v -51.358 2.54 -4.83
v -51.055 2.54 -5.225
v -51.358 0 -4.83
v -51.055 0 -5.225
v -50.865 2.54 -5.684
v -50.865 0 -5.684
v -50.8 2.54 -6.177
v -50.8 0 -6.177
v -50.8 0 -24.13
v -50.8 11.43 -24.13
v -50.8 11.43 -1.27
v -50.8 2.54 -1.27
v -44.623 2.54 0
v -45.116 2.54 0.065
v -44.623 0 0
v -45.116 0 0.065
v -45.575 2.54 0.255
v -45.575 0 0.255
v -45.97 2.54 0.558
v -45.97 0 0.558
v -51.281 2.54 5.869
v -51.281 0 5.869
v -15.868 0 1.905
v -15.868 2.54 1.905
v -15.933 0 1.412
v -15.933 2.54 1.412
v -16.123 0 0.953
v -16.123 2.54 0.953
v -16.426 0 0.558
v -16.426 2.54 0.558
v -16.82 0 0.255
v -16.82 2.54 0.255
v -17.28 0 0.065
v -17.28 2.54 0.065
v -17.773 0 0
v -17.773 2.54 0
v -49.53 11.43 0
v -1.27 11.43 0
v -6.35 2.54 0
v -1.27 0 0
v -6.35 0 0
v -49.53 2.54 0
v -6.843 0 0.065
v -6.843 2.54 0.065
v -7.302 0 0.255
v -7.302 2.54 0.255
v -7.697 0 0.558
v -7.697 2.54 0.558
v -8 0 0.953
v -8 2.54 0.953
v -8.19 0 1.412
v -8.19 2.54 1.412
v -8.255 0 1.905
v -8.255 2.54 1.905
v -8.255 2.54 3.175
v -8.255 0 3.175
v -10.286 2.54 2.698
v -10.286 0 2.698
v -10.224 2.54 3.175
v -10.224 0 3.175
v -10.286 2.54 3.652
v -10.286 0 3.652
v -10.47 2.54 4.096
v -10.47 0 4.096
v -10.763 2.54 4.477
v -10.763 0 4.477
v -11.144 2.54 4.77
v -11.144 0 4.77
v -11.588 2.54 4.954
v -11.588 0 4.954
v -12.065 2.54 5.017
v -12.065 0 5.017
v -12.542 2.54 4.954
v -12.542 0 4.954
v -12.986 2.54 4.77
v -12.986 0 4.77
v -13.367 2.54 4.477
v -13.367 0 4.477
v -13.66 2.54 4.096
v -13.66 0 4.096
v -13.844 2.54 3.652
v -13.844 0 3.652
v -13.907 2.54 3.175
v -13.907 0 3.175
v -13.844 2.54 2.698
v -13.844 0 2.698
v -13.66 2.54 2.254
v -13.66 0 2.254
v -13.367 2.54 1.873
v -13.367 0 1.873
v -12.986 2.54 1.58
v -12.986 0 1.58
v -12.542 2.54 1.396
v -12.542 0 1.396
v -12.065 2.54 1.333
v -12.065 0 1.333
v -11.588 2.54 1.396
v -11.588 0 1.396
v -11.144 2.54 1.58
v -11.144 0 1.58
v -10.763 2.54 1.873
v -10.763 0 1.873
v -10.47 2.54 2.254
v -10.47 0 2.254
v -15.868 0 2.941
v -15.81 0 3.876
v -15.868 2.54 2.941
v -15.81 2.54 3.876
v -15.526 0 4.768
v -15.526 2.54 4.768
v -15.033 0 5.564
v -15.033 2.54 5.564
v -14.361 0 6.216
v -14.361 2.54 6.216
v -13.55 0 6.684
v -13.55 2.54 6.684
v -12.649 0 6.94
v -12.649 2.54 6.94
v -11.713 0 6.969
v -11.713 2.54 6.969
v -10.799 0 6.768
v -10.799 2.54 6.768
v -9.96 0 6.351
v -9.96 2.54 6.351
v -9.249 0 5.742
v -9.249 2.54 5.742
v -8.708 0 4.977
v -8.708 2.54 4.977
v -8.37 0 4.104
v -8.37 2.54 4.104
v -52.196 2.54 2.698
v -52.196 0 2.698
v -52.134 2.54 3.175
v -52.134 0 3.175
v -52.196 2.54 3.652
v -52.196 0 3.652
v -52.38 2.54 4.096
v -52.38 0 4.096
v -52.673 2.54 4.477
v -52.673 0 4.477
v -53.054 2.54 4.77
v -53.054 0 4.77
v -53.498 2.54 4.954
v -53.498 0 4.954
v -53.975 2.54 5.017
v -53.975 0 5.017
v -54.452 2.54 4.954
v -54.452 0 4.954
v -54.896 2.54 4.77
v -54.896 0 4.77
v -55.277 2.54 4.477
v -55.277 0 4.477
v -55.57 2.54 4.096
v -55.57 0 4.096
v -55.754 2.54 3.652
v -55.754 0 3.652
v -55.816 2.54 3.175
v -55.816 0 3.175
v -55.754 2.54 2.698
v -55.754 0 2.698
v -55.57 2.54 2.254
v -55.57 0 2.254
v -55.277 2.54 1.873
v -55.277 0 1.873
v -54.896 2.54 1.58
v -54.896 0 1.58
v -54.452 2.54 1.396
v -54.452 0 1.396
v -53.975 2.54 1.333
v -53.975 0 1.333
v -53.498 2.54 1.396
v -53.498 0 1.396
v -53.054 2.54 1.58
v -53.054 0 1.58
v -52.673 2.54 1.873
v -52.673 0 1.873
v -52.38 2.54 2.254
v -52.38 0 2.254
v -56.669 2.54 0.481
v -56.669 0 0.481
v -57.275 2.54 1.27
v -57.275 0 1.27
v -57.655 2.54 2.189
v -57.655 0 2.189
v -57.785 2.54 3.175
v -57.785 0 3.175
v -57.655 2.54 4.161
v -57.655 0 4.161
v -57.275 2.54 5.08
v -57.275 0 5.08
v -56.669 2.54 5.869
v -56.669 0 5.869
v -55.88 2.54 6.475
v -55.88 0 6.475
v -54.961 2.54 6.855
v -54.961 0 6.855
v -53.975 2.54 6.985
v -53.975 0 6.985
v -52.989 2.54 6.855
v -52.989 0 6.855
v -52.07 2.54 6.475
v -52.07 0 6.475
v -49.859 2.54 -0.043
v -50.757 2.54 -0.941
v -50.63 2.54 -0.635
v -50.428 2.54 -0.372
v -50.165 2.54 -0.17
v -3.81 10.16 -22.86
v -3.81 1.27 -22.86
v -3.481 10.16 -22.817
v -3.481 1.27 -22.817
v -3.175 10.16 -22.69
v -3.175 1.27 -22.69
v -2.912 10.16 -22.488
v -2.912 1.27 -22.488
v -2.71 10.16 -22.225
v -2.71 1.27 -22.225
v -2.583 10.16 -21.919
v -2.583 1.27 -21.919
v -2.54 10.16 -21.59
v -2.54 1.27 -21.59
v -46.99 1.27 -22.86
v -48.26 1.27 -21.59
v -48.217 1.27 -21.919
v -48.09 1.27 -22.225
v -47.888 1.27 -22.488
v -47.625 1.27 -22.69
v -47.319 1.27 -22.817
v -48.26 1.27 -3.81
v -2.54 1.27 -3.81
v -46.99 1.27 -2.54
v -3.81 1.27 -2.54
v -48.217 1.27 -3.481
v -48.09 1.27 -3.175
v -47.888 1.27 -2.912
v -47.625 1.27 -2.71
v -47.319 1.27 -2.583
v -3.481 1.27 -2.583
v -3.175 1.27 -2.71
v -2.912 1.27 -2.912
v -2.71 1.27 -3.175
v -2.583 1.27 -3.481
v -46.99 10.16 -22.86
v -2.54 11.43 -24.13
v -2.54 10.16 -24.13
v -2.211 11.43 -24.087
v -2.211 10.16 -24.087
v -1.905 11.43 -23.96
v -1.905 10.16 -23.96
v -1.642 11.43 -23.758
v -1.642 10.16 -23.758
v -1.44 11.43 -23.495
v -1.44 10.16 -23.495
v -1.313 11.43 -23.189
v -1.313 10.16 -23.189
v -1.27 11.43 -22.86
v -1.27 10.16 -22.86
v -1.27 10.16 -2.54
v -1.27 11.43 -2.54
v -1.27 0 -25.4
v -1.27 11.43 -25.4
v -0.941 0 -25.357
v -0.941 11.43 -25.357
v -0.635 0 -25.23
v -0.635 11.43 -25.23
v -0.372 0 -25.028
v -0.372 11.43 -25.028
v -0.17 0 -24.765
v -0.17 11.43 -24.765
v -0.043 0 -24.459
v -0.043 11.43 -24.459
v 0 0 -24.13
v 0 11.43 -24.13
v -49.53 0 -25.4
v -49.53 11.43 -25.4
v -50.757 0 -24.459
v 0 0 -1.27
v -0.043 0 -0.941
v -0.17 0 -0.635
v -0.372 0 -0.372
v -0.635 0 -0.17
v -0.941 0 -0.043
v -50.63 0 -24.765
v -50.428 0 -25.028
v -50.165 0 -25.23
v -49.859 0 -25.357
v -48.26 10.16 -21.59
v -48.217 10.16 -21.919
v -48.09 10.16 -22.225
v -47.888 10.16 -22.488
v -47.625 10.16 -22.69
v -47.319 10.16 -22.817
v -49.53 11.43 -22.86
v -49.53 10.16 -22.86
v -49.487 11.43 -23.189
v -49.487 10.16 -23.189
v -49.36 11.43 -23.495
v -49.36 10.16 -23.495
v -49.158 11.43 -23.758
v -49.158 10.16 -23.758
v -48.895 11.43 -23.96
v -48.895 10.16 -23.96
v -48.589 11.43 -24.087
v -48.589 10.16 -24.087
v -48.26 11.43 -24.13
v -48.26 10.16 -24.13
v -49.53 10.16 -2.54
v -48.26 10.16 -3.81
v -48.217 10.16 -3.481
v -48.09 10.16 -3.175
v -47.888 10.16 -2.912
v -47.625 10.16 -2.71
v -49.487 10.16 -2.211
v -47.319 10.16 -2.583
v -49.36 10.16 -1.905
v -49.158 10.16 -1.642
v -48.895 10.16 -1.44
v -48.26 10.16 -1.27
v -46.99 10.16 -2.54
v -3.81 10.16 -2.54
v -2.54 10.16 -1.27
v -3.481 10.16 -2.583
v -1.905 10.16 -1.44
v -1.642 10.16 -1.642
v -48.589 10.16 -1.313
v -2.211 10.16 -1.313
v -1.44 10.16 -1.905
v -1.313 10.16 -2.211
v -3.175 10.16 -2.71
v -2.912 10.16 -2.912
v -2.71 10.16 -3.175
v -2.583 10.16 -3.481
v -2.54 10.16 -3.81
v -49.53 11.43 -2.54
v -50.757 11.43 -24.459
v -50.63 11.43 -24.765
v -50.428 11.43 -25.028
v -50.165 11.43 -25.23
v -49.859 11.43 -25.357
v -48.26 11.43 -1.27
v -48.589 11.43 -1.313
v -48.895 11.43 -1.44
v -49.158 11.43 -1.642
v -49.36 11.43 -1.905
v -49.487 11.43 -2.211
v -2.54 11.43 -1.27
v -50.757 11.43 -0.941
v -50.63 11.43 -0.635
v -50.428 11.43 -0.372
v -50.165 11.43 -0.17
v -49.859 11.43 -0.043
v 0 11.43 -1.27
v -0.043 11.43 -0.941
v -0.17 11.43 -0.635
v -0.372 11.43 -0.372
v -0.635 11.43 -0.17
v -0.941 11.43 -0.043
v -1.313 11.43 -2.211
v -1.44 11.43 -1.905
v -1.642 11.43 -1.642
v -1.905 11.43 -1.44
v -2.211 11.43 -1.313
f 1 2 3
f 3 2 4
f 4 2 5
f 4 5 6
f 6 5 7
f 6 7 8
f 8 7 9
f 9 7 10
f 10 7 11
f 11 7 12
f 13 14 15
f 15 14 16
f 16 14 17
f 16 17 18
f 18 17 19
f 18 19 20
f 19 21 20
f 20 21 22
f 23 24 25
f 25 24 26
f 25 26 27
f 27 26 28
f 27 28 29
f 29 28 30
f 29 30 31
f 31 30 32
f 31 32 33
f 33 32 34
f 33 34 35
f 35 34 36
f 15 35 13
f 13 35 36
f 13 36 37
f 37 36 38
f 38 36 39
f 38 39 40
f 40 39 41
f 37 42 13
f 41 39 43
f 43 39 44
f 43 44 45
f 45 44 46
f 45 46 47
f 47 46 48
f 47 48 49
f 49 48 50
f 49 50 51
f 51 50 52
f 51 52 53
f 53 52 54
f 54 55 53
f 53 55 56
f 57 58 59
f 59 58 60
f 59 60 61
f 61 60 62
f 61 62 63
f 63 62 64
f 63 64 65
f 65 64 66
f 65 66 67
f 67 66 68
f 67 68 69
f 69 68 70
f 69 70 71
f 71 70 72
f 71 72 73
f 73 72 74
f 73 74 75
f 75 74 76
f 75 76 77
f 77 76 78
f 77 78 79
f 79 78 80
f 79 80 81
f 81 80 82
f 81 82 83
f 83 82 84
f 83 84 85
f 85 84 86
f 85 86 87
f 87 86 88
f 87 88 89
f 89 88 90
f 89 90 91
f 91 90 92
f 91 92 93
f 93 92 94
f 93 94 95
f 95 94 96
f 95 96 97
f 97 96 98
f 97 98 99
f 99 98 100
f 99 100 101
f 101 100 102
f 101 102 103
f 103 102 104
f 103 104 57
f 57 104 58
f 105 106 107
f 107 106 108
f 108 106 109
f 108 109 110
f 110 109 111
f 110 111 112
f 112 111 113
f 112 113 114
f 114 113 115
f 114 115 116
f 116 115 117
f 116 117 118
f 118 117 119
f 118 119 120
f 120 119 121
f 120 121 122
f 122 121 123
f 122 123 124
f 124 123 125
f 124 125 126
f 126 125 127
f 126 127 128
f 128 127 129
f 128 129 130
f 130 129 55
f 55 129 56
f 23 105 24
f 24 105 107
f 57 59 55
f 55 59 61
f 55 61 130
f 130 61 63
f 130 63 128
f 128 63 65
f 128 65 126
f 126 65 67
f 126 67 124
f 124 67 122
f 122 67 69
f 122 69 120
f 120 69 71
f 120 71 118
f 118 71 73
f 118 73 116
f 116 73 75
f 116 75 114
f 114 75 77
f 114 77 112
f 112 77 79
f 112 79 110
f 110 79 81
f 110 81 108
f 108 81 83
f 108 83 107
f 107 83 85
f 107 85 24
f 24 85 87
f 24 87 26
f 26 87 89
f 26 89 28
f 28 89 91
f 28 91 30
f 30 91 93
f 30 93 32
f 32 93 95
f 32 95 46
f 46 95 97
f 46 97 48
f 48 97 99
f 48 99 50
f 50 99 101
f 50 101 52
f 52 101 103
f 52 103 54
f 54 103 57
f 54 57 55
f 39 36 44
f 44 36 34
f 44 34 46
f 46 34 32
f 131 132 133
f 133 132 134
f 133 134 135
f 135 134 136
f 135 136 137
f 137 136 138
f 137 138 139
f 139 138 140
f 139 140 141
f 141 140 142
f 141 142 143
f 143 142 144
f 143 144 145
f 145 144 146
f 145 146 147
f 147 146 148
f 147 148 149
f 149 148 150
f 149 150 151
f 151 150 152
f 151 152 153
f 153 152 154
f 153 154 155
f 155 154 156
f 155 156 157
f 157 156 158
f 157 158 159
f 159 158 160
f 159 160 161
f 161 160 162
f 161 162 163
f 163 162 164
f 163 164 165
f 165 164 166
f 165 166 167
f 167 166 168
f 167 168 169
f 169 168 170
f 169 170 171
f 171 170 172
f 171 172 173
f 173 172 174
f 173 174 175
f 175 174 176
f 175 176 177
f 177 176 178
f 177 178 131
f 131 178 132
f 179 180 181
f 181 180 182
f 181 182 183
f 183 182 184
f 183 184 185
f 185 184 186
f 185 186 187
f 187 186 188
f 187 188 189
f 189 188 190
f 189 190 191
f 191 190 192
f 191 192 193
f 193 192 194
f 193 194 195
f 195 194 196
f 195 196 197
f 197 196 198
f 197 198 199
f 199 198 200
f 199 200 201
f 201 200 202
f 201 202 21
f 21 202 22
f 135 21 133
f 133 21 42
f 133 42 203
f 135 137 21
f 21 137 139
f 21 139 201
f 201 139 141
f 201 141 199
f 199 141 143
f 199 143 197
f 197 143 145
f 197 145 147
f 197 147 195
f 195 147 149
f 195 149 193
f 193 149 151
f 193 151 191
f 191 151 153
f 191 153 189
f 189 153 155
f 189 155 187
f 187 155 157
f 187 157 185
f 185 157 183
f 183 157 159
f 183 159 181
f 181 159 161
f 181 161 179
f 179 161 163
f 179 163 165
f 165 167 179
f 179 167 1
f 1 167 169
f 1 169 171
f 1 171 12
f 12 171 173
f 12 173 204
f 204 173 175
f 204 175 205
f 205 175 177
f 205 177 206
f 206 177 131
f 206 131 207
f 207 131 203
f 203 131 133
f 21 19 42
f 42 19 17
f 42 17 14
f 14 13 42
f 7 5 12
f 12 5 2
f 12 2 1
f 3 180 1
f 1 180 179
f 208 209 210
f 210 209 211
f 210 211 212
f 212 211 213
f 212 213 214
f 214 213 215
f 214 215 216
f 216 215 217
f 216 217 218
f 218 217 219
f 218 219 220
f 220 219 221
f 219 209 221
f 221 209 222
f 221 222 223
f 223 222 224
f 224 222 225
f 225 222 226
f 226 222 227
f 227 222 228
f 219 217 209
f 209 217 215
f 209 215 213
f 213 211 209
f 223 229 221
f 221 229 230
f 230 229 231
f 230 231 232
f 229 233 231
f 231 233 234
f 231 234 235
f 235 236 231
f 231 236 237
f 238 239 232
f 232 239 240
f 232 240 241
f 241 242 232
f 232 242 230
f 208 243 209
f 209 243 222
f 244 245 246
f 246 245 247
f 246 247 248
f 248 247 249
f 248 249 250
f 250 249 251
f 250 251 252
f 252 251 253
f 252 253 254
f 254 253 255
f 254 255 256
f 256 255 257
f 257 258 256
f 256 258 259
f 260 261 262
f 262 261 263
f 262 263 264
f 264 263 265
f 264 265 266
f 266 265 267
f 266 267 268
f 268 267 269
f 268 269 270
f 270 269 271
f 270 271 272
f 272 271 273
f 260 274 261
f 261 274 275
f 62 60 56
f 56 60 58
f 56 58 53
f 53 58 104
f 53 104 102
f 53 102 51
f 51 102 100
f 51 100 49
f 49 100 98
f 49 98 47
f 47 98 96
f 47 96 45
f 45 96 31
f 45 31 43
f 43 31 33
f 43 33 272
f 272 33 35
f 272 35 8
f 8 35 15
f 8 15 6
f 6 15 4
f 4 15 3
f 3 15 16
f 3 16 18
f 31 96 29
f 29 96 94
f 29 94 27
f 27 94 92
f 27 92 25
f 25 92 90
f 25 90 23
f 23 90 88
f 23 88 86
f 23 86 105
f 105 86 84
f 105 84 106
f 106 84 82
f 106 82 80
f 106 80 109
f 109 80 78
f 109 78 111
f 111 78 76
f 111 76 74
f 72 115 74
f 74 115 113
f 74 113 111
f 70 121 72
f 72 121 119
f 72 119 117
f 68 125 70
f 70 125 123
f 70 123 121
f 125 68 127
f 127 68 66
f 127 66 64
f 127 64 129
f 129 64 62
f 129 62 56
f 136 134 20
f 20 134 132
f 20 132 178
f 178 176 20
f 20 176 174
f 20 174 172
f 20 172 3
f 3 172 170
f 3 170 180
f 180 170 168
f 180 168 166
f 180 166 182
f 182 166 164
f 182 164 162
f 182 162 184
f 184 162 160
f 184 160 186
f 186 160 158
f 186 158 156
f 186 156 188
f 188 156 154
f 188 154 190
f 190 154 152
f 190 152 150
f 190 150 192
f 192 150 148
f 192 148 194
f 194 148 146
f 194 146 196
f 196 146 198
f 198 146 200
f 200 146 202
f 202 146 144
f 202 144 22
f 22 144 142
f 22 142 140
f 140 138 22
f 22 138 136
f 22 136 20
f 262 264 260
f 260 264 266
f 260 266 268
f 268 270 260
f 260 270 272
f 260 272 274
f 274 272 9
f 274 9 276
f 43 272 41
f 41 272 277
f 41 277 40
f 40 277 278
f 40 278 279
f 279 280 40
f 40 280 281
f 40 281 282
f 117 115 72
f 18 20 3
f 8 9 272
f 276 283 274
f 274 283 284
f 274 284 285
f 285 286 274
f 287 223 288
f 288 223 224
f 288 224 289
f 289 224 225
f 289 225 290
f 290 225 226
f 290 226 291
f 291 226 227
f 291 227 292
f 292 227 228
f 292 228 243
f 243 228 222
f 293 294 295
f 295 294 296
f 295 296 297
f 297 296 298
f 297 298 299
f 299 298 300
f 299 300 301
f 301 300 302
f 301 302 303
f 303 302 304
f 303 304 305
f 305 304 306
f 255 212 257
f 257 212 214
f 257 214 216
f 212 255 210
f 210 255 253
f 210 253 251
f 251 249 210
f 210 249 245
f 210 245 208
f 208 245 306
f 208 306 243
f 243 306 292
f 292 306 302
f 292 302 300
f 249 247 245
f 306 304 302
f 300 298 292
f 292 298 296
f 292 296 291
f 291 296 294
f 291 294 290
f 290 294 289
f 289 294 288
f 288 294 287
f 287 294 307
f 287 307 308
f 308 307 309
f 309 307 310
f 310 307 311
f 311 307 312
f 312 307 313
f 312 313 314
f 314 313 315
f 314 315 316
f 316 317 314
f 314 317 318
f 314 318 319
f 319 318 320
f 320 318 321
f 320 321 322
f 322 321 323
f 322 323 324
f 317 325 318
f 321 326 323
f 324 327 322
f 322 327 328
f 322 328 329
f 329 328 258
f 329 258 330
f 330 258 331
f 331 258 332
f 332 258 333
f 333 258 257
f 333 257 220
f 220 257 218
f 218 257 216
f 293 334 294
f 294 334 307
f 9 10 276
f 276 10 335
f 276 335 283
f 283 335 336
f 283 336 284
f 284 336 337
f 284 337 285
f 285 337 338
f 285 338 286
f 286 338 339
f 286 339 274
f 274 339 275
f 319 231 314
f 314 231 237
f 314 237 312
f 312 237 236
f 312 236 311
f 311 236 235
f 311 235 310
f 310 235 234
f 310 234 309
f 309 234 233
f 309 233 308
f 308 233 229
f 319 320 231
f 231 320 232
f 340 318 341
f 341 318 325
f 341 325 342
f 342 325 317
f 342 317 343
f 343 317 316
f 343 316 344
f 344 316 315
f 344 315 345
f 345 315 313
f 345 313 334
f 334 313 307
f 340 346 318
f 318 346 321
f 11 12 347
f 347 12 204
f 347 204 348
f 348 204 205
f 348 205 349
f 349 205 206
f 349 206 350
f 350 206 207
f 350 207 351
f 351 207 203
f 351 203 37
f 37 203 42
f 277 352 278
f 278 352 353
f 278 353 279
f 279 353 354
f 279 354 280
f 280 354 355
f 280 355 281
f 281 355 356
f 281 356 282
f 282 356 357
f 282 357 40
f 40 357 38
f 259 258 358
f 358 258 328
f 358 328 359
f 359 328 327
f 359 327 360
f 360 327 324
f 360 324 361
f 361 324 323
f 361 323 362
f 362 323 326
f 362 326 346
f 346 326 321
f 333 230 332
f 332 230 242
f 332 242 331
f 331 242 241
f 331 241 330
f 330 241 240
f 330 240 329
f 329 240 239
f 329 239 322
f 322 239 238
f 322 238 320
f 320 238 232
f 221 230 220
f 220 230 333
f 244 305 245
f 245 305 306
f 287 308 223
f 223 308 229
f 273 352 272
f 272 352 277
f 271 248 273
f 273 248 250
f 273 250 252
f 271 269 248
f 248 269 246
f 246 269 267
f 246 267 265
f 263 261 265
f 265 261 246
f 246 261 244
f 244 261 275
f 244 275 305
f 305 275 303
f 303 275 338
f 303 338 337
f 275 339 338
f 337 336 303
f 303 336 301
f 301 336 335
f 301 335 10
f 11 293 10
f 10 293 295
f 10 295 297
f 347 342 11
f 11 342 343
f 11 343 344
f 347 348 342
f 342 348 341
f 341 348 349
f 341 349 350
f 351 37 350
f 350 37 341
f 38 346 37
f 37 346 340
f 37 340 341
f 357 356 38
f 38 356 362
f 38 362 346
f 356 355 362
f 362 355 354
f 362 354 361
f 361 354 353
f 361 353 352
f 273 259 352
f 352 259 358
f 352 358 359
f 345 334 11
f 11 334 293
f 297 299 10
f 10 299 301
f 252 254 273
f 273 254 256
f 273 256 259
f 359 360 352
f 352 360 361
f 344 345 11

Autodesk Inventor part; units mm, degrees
ref_plane "YZ Plane" through (0, 0, 0) normal (1, 0, 0) x (0, 1, 0)
ref_plane "XZ Plane" through (0, 0, 0) normal (0, 1, 0) x (-1, 0, 0)
ref_plane "XY Plane" through (0, 0, 0) normal (0, 0, 1) x (1, 0, 0)
sketch "Sketch1" plane through (0, 0, 0) normal (0, 1, 0) x (-1, 0, 0)
  line L0 (0, 0) -> (50.8, 0)
  line L1 (50.8, 0) -> (50.8, -25.4)
  line L2 (50.8, -25.4) -> (0, -25.4)
  line L3 (0, -25.4) -> (0, 0)
  line L4 (48.26, -22.86) -> (48.26, -2.54)
  line L5 (48.26, -2.54) -> (2.54, -2.54)
  line L6 (2.54, -2.54) -> (2.54, -22.86)
  line L7 (2.54, -22.86) -> (48.26, -22.86)
  dimension "d0" = 50.8
  dimension "d1" = 25.4
  dimension "d2" = 2.54
extrude "Extrusion1" add sketch "Sketch1" along normal blind 11.43
extrude "Extrusion2" add sketch "Sketch1" along normal blind 1.27 contours L7 L6 L5 L4
sketch "Sketch2" plane through (0, 11.43, 0) normal (0, 1, 0) x (1, 0, 0)
  line L0 (-48.26, 22.86) -> (-2.54, 22.86) projected
  line L1 (-2.54, 22.86) -> (-2.54, 2.54) projected
  line L2 (-2.54, 2.54) -> (-48.26, 2.54) projected
  line L3 (-48.26, 2.54) -> (-48.26, 22.86) projected
  line L4 (-50.8, 0) -> (0, 0) projected
  line L5 (0, 0) -> (0, 25.4) projected
  line L6 (0, 25.4) -> (-50.8, 25.4) projected
  line L7 (-50.8, 25.4) -> (-50.8, 0) projected
  line L8 (-49.53, 24.13) -> (-1.27, 24.13)
  line L9 (-1.27, 24.13) -> (-1.27, 1.27)
  line L10 (-1.27, 1.27) -> (-49.53, 1.27)
  line L11 (-49.53, 1.27) -> (-49.53, 24.13)
  dimension "d7" = 1.27
extrude "Extrusion3" cut sketch "Sketch2" against normal blind 1.27 contours L8 L9 L10 L11
fillet "Fillet1" radius 1.27 12 edges at (-2.54, 5.715, -2.54) (-1.27, 10.795, -1.27) (0, 5.715, 0) (-50.8, 5.715, 0) (-49.53, 10.795, -1.27) (-48.26, 5.715, -2.54) (-50.8, 5.715, -25.4) (-49.53, 10.795, -24.13) (-48.26, 5.715, -22.86) (0, 5.715, -25.4) (-1.27, 10.795, -24.13) (-2.54, 5.715, -22.86)
sketch "Sketch3" plane through (0, 0, 0) normal (0, -1, 0) x (1, 0, 0)
  circle A0 centre (-53.975, 3.175) radius 1.8415
  circle A1 centre (-12.065, 3.175) radius 1.8415
  circle A2 centre (-53.975, 3.175) radius 3.81
  circle A3 centre (-12.065, 3.175) radius 3.81
  line L0 (-1.27, 0) -> (-49.53, 0) projected
  line L1 (-56.6691, 0.4809) -> (-50.8, -5.3882)
  line L2 (-51.2809, 5.8691) -> (-45.4118, 0)
  line L3 (-15.8678, 2.941) -> (-15.8678, 0)
  line L4 (-8.255, 3.175) -> (-8.255, 0)
  arc A4 (-1.27, -25.4) -> (0, -24.13) centre (-1.27, -24.13) ccw projected
  line L5 (0, -24.13) -> (0, -1.27) projected
  arc A5 (0, -1.27) -> (-1.27, 0) centre (-1.27, -1.27) ccw projected
  line L6 (-1.27, 0) -> (-49.53, 0) projected
  arc A6 (-49.53, 0) -> (-50.8, -1.27) centre (-49.53, -1.27) ccw projected
  line L7 (-50.8, -1.27) -> (-50.8, -24.13) projected
  arc A7 (-50.8, -24.13) -> (-49.53, -25.4) centre (-49.53, -24.13) ccw projected
  line L8 (-49.53, -25.4) -> (-1.27, -25.4) projected
  line L9 (-50.8, -24.13) -> (-50.8, -1.27) projected
  line L10 (-50.8, -5.3882) -> (-50.8, -1.27)
  arc A8 (-49.53, 0) -> (-50.8, -1.27) centre (-49.53, -1.27) ccw
  line L11 (-49.53, 0) -> (-45.4118, 0)
  point P0 (0, 0)
  dimension "d11" = 3.683
  dimension "d13" = 41.91
  dimension "d14" = 7.62
  dimension "d16" = 3.175
  dimension "d17" = 45
extrude "Extrusion4" add sketch "Sketch3" against normal blind 2.54 contours A2 | A2 L2 L0 A6 L7 L1 | L3 A3 L0 | A3 L0 | A3 L4 L0 picked at (-11.991, 0.449)
fillet "Fillet2" radius 1.905 4 edges at (-8.255, 1.27, 0) (-15.8678, 1.27, 0) (-45.4118, 1.27, 0) (-50.8, 1.27, -5.3882)
properties part number "BackupNanoCasePart1" material "ABS Plastic"
